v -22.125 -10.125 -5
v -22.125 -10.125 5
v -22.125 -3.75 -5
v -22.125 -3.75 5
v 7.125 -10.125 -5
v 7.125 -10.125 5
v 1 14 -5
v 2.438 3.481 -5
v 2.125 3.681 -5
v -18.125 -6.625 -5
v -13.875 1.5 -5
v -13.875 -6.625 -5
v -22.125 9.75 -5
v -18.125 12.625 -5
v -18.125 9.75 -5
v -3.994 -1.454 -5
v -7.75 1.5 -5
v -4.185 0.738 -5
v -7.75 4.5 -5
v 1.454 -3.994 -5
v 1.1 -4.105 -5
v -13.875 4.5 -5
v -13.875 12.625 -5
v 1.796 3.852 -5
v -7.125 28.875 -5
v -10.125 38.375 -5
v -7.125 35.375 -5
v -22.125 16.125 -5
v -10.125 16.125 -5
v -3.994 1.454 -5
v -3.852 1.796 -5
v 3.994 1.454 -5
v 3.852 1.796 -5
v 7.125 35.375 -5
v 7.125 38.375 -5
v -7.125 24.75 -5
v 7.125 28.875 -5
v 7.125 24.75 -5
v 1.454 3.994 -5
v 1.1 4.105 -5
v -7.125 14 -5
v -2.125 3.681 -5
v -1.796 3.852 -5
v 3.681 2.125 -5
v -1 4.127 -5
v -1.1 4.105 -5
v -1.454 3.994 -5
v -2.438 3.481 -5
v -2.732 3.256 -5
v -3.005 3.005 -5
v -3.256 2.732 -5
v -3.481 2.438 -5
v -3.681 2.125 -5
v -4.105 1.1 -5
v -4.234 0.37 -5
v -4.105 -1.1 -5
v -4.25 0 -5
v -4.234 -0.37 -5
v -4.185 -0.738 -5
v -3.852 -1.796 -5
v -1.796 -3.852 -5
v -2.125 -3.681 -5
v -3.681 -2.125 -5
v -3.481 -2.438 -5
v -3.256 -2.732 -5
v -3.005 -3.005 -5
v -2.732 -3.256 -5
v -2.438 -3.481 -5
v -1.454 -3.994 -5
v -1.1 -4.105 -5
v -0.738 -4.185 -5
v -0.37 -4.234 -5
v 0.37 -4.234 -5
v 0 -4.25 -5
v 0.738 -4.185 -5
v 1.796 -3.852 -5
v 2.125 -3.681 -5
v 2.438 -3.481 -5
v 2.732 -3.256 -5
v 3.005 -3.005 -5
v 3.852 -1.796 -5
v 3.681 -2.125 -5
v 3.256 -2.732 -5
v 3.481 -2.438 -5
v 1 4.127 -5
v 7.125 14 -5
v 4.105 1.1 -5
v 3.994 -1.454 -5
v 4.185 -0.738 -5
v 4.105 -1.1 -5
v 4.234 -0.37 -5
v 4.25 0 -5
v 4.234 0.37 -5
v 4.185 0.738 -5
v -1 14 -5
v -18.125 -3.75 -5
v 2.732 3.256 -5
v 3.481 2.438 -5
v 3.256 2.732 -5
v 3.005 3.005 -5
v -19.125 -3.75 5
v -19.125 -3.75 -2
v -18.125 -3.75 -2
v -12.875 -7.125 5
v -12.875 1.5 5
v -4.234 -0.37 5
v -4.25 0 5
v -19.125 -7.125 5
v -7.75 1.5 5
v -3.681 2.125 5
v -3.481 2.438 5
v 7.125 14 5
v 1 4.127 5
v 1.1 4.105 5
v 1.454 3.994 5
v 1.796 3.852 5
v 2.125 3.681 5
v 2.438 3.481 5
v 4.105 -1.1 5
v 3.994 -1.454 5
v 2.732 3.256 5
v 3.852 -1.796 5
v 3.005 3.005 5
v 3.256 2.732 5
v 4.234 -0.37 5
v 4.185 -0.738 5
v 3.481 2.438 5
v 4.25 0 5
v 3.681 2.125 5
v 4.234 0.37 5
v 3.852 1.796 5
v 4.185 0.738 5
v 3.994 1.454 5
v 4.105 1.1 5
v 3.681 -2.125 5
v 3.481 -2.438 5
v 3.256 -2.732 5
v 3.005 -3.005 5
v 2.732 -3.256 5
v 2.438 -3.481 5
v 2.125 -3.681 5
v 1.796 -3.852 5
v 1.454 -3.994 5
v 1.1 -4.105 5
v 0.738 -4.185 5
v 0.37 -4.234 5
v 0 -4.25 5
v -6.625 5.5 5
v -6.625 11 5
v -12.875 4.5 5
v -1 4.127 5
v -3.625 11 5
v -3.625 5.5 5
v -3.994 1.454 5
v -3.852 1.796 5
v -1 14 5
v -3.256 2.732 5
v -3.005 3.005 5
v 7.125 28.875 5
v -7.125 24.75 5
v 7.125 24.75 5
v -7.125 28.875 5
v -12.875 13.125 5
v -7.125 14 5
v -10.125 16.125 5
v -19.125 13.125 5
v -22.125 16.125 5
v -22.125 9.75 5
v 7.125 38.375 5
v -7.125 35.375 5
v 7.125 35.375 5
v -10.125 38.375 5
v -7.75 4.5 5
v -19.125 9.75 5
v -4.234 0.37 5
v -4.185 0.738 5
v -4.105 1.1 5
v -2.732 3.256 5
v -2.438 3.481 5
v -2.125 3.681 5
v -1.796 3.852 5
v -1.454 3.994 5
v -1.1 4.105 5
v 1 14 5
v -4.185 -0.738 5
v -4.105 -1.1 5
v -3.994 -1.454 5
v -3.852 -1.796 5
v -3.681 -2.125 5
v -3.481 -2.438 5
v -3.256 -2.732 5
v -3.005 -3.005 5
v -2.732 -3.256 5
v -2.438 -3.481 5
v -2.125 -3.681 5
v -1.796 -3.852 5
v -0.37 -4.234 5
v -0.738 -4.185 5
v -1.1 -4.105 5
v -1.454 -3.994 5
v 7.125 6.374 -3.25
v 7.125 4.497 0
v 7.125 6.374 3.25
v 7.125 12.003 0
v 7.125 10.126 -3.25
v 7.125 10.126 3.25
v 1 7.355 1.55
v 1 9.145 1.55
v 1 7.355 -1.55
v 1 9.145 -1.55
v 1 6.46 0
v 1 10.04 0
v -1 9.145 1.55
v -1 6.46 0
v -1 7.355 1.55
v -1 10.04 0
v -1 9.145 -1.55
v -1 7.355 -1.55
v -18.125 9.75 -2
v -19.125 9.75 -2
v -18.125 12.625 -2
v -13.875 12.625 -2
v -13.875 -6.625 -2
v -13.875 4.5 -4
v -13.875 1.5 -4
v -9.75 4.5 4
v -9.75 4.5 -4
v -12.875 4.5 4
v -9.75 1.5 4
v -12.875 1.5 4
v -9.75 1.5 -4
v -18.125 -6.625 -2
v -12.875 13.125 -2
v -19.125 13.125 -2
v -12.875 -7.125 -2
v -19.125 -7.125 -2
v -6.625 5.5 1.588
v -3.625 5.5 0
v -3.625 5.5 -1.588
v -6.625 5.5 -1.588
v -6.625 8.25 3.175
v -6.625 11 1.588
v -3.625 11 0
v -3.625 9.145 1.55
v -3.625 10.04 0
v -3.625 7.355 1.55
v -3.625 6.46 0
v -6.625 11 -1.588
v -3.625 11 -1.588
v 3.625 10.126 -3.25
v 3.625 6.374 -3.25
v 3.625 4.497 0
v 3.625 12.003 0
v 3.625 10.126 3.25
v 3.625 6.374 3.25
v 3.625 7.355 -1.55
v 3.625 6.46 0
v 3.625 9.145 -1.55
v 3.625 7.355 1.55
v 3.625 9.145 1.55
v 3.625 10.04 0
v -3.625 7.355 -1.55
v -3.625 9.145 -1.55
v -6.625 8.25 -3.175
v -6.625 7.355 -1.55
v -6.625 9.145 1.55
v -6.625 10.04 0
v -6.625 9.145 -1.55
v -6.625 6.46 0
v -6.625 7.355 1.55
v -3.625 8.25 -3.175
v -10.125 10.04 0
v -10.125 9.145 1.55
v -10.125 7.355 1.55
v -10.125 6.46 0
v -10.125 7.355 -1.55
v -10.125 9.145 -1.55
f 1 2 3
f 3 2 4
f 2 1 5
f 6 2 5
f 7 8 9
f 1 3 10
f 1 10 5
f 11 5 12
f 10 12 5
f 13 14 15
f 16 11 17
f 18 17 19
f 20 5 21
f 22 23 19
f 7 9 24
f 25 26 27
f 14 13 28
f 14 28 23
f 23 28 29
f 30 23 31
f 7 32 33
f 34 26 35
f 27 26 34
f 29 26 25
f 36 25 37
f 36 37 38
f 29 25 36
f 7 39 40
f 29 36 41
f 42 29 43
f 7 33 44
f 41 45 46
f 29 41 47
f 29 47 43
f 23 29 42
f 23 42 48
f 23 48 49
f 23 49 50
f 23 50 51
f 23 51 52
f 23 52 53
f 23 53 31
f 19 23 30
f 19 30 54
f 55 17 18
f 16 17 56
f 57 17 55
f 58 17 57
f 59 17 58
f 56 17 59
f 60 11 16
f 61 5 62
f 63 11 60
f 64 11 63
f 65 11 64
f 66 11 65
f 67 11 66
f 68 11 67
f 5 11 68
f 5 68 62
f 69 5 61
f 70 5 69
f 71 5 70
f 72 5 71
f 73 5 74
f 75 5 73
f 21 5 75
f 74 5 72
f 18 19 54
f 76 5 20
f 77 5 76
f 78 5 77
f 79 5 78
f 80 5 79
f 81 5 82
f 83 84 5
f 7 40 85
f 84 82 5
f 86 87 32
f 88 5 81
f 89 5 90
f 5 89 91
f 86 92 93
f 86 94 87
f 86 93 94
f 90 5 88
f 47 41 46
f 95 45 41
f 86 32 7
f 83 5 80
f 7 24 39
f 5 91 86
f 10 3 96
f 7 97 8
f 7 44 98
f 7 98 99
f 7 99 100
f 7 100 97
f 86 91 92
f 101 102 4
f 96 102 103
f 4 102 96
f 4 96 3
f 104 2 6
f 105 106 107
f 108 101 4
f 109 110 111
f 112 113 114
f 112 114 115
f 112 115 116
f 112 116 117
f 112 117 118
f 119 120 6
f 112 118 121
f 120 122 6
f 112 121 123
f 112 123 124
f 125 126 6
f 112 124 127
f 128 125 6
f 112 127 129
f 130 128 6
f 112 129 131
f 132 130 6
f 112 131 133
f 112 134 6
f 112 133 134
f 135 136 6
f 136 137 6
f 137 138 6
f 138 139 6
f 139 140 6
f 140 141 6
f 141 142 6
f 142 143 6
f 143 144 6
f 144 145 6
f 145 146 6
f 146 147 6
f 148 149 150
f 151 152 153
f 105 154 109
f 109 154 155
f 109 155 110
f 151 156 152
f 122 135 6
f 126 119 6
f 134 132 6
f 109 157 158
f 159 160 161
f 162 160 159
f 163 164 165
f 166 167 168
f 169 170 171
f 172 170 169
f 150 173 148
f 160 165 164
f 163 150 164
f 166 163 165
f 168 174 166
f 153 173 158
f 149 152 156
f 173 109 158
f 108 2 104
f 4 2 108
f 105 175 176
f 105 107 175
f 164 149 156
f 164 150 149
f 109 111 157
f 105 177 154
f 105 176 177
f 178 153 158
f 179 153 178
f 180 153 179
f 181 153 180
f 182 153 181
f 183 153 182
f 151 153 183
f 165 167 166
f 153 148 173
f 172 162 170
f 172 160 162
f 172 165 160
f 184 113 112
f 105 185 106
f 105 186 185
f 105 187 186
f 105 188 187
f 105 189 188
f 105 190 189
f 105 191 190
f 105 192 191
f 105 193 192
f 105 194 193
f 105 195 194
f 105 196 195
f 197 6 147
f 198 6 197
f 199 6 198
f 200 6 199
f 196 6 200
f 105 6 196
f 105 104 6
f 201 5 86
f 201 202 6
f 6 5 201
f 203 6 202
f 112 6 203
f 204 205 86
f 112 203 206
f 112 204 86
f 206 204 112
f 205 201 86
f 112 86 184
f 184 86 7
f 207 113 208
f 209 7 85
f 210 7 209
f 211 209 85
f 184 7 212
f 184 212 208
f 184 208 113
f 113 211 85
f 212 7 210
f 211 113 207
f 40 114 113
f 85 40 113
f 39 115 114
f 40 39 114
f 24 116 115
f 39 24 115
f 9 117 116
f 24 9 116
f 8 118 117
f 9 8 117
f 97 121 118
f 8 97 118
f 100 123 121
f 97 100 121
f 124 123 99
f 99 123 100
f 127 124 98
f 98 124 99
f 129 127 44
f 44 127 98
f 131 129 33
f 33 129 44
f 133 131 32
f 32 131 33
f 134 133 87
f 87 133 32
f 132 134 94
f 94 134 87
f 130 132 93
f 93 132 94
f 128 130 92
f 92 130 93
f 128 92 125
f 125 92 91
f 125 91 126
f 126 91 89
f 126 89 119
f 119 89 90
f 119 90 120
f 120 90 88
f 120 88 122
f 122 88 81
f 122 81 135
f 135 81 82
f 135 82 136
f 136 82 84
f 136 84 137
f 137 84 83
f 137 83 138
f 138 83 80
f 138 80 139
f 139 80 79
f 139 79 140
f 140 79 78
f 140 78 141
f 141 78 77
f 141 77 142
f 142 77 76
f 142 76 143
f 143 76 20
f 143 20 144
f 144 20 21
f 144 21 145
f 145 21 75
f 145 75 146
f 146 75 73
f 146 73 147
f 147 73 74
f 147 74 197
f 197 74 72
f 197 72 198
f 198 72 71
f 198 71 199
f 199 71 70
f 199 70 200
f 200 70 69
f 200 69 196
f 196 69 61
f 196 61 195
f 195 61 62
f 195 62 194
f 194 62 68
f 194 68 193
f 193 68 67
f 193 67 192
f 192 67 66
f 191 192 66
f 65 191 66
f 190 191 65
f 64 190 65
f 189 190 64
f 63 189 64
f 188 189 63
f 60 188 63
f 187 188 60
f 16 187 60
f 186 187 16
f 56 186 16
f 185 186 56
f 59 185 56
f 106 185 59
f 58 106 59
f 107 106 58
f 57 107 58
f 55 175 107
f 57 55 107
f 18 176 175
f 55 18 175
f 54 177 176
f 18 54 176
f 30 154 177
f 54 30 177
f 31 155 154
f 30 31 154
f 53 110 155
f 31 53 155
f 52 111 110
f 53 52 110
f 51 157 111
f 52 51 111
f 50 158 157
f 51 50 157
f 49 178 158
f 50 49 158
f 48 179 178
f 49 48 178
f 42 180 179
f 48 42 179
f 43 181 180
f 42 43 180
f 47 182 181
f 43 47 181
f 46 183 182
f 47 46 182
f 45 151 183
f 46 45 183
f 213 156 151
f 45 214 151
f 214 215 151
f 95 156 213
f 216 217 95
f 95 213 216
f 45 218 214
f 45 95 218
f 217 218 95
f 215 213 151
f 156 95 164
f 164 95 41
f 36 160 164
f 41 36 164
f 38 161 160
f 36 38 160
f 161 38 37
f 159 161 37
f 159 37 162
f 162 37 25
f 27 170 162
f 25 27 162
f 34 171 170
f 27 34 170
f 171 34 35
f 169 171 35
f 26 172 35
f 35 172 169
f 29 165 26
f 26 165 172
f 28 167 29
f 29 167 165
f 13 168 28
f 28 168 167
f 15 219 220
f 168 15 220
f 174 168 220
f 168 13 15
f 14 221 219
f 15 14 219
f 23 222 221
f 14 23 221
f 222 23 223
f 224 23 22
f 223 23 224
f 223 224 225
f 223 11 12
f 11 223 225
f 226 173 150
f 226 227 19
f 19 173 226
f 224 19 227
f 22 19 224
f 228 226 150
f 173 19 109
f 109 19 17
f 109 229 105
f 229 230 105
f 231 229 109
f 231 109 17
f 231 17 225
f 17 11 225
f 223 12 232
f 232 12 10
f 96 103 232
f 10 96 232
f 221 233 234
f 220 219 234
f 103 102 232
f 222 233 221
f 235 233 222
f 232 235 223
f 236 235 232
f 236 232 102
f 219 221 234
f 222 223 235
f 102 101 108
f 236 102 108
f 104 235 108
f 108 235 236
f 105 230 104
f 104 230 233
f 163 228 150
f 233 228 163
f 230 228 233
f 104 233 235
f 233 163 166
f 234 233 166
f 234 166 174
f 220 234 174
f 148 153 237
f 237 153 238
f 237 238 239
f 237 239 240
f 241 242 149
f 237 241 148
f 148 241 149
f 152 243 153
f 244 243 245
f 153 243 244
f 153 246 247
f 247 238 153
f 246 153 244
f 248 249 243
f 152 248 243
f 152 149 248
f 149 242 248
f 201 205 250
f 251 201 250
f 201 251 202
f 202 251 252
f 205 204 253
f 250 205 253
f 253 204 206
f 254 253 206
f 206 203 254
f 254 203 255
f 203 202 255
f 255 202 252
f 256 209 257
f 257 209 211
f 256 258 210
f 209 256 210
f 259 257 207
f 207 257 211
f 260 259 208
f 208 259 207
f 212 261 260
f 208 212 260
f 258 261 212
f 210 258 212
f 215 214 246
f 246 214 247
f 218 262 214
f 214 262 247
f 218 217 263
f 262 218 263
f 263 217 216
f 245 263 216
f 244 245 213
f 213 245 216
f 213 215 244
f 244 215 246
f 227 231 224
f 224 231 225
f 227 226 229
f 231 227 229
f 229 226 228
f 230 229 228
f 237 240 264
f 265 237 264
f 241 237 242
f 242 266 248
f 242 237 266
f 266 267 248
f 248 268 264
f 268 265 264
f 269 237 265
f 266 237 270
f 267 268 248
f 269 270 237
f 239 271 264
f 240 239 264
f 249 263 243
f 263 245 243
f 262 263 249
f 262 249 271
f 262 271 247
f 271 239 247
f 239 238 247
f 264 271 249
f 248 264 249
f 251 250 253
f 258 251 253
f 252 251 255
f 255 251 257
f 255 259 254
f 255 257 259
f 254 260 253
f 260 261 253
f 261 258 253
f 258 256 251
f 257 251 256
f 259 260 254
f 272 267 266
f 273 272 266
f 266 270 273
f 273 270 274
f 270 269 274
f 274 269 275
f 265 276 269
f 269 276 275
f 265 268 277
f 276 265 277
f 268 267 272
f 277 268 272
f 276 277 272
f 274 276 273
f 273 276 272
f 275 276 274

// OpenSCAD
//
// i3-z-endstop.scad
//

da6 = 1 / cos(180 / 6) / 2;

clearance       = 0.25;
frame_thickness = 6.5;
rod_diam        = 8 + clearance;
rod_frame_gap   = 24.75;
rod_frame_center_to_center = rod_frame_gap + frame_thickness/2 + rod_diam/2;
rod_endstop_center_to_center = 16;

endstop_width  = 6 + clearance;
endstop_length = 20 + clearance;
endstop_height = 8;

thickness = 3;
height    = 10;

module z_endstop_holder() {
  difference() {
    z_frame();
    z_holes();
  }

  % cylinder(r=rod_diam/2,h=height*2,center=true);
}

module z_frame() {
  // main body
  translate([-1*(rod_diam/2+thickness+3),-rod_diam/2-thickness*2,-height/2])
    cube([rod_diam+thickness*2+3,rod_diam+frame_thickness+rod_frame_gap+thickness*3,height]);

  /*
  // clamp area
  translate([-3,-8,0])
    cube([rod_diam+thickness*2+6,rod_diam+thickness,height],center=true);

  // joint between clamp and endstop
  translate([0,-8,0])
    translate([-8,-0.25*(6+thickness),0]) cube([6.1+thickness,5.5+thickness*2,height],center=true);
    */

  // endstop mount
  translate([-rod_endstop_center_to_center+3,3,0])
    cube([endstop_width+thickness*2+6,endstop_length+thickness*2,height],center=true);
}

module z_holes() {
  // frame slot // FIXME -- frame is not lined up, the slot needs to be more open to the left
  translate([thickness/2-1.5,rod_frame_center_to_center,0])
    cube([rod_diam+thickness+3,frame_thickness,height*2],center=true);

  // smooth rod slot
  cylinder(r=(rod_diam+0.25)/2,h=height*2,$fn=72,center=true);
  //translate([0,-1*(rod_diam),0]) cube([2,rod_diam*2+thickness,height*2],center=true);
  translate([0,rod_diam,0]) cube([2,rod_diam*2+thickness,height*2],center=true);

  // clamp screw
  /*
  translate([0,-rod_diam,0]) rotate([90,0,0]) rotate([0,90,0]) cylinder(r=3.1*da6,h=rod_diam+thickness*3,$fn=6,center=true);

  translate([0,-rod_diam,0]) {
    // captive clamp nut
    translate([-rod_diam/2-thickness+.5,0,0]) {
      rotate([0,90,0]) cylinder(r=5.5*da6,h=6,$fn=6,center=true);
      translate([0,0,height/2]) cube([6,5.5,height],center=true);
    }

    // clamp screw recess
    translate([rod_diam/2+thickness/1.5,0,0]) rotate([90,0,0]) rotate([0,90,0]) cylinder(r=6.5*da6,h=5,$fn=6,center=true);
  }
  */

  translate([0,rod_diam,0]) rotate([90,0,0]) rotate([0,90,0]) {
    cylinder(r=3.1*da6,h=rod_diam+thickness*4,$fn=6,center=true);

    translate([3,height/2,0])
      % cylinder(r=3.1*da6,h=rod_diam+thickness*4,$fn=6,center=true);
  }


  translate([0,rod_diam,0]) {
    // captive clamp nut
    translate([-rod_diam/2-thickness+2,0,0]) {
      rotate([0,90,0]) cylinder(r=5.5*da6,h=3,$fn=6,center=true);
      translate([0,0,height/2]) cube([3,5.5,height],center=true);
    }

    // clamp screw recess
    translate([rod_diam/2+thickness/1.5,0,0]) rotate([90,0,0]) rotate([0,90,0]) cylinder(r=6.5*da6,h=5,$fn=6,center=true);
  }

  // empty space between rod clamp and frame
  /*
  translate([0,rod_frame_center_to_center/2,0])
    cube([rod_diam,rod_frame_gap-thickness*2,height*2],center=true);
    */

  translate([0,rod_frame_gap/2+4+thickness,0])
    cube([rod_diam+thickness+3,rod_frame_gap-thickness*2-8,height*2],center=true);

  // endstop stuffs
  translate([-16,3,0]) {
    // crevice
    translate([0,0,height-endstop_height]) cube([endstop_width,endstop_length,height-2],center=true);

    // bottom hole
    translate([0,0,-thickness]) cube([endstop_width-2,endstop_length-1,height*2],center=true);

    // side opening, to allow wires through
    translate([-1*(endstop_width),0,0]) cube([endstop_width*2,endstop_length/1.5,height*2],center=true);

    // zip tie slot for a lever-free endstop
    translate([endstop_width+1,0,0]) cube([2,3,height*2],center=true);
    translate([endstop_width-5,0,height/2]) cube([11,3,2],center=true);
    translate([endstop_width-5,0,-height/2]) cube([11,3,2],center=true);
  }
}

% translate([-1,-rod_diam,0]) rotate([90,0,0]) rotate([0,90,0]) cylinder(r=3/2,h=10,$fn=32,center=true);
% translate([rod_diam,rod_frame_gap/2+rod_diam/2,height/2]) cube([1,rod_frame_gap,1],center=true);

z_endstop_holder();
